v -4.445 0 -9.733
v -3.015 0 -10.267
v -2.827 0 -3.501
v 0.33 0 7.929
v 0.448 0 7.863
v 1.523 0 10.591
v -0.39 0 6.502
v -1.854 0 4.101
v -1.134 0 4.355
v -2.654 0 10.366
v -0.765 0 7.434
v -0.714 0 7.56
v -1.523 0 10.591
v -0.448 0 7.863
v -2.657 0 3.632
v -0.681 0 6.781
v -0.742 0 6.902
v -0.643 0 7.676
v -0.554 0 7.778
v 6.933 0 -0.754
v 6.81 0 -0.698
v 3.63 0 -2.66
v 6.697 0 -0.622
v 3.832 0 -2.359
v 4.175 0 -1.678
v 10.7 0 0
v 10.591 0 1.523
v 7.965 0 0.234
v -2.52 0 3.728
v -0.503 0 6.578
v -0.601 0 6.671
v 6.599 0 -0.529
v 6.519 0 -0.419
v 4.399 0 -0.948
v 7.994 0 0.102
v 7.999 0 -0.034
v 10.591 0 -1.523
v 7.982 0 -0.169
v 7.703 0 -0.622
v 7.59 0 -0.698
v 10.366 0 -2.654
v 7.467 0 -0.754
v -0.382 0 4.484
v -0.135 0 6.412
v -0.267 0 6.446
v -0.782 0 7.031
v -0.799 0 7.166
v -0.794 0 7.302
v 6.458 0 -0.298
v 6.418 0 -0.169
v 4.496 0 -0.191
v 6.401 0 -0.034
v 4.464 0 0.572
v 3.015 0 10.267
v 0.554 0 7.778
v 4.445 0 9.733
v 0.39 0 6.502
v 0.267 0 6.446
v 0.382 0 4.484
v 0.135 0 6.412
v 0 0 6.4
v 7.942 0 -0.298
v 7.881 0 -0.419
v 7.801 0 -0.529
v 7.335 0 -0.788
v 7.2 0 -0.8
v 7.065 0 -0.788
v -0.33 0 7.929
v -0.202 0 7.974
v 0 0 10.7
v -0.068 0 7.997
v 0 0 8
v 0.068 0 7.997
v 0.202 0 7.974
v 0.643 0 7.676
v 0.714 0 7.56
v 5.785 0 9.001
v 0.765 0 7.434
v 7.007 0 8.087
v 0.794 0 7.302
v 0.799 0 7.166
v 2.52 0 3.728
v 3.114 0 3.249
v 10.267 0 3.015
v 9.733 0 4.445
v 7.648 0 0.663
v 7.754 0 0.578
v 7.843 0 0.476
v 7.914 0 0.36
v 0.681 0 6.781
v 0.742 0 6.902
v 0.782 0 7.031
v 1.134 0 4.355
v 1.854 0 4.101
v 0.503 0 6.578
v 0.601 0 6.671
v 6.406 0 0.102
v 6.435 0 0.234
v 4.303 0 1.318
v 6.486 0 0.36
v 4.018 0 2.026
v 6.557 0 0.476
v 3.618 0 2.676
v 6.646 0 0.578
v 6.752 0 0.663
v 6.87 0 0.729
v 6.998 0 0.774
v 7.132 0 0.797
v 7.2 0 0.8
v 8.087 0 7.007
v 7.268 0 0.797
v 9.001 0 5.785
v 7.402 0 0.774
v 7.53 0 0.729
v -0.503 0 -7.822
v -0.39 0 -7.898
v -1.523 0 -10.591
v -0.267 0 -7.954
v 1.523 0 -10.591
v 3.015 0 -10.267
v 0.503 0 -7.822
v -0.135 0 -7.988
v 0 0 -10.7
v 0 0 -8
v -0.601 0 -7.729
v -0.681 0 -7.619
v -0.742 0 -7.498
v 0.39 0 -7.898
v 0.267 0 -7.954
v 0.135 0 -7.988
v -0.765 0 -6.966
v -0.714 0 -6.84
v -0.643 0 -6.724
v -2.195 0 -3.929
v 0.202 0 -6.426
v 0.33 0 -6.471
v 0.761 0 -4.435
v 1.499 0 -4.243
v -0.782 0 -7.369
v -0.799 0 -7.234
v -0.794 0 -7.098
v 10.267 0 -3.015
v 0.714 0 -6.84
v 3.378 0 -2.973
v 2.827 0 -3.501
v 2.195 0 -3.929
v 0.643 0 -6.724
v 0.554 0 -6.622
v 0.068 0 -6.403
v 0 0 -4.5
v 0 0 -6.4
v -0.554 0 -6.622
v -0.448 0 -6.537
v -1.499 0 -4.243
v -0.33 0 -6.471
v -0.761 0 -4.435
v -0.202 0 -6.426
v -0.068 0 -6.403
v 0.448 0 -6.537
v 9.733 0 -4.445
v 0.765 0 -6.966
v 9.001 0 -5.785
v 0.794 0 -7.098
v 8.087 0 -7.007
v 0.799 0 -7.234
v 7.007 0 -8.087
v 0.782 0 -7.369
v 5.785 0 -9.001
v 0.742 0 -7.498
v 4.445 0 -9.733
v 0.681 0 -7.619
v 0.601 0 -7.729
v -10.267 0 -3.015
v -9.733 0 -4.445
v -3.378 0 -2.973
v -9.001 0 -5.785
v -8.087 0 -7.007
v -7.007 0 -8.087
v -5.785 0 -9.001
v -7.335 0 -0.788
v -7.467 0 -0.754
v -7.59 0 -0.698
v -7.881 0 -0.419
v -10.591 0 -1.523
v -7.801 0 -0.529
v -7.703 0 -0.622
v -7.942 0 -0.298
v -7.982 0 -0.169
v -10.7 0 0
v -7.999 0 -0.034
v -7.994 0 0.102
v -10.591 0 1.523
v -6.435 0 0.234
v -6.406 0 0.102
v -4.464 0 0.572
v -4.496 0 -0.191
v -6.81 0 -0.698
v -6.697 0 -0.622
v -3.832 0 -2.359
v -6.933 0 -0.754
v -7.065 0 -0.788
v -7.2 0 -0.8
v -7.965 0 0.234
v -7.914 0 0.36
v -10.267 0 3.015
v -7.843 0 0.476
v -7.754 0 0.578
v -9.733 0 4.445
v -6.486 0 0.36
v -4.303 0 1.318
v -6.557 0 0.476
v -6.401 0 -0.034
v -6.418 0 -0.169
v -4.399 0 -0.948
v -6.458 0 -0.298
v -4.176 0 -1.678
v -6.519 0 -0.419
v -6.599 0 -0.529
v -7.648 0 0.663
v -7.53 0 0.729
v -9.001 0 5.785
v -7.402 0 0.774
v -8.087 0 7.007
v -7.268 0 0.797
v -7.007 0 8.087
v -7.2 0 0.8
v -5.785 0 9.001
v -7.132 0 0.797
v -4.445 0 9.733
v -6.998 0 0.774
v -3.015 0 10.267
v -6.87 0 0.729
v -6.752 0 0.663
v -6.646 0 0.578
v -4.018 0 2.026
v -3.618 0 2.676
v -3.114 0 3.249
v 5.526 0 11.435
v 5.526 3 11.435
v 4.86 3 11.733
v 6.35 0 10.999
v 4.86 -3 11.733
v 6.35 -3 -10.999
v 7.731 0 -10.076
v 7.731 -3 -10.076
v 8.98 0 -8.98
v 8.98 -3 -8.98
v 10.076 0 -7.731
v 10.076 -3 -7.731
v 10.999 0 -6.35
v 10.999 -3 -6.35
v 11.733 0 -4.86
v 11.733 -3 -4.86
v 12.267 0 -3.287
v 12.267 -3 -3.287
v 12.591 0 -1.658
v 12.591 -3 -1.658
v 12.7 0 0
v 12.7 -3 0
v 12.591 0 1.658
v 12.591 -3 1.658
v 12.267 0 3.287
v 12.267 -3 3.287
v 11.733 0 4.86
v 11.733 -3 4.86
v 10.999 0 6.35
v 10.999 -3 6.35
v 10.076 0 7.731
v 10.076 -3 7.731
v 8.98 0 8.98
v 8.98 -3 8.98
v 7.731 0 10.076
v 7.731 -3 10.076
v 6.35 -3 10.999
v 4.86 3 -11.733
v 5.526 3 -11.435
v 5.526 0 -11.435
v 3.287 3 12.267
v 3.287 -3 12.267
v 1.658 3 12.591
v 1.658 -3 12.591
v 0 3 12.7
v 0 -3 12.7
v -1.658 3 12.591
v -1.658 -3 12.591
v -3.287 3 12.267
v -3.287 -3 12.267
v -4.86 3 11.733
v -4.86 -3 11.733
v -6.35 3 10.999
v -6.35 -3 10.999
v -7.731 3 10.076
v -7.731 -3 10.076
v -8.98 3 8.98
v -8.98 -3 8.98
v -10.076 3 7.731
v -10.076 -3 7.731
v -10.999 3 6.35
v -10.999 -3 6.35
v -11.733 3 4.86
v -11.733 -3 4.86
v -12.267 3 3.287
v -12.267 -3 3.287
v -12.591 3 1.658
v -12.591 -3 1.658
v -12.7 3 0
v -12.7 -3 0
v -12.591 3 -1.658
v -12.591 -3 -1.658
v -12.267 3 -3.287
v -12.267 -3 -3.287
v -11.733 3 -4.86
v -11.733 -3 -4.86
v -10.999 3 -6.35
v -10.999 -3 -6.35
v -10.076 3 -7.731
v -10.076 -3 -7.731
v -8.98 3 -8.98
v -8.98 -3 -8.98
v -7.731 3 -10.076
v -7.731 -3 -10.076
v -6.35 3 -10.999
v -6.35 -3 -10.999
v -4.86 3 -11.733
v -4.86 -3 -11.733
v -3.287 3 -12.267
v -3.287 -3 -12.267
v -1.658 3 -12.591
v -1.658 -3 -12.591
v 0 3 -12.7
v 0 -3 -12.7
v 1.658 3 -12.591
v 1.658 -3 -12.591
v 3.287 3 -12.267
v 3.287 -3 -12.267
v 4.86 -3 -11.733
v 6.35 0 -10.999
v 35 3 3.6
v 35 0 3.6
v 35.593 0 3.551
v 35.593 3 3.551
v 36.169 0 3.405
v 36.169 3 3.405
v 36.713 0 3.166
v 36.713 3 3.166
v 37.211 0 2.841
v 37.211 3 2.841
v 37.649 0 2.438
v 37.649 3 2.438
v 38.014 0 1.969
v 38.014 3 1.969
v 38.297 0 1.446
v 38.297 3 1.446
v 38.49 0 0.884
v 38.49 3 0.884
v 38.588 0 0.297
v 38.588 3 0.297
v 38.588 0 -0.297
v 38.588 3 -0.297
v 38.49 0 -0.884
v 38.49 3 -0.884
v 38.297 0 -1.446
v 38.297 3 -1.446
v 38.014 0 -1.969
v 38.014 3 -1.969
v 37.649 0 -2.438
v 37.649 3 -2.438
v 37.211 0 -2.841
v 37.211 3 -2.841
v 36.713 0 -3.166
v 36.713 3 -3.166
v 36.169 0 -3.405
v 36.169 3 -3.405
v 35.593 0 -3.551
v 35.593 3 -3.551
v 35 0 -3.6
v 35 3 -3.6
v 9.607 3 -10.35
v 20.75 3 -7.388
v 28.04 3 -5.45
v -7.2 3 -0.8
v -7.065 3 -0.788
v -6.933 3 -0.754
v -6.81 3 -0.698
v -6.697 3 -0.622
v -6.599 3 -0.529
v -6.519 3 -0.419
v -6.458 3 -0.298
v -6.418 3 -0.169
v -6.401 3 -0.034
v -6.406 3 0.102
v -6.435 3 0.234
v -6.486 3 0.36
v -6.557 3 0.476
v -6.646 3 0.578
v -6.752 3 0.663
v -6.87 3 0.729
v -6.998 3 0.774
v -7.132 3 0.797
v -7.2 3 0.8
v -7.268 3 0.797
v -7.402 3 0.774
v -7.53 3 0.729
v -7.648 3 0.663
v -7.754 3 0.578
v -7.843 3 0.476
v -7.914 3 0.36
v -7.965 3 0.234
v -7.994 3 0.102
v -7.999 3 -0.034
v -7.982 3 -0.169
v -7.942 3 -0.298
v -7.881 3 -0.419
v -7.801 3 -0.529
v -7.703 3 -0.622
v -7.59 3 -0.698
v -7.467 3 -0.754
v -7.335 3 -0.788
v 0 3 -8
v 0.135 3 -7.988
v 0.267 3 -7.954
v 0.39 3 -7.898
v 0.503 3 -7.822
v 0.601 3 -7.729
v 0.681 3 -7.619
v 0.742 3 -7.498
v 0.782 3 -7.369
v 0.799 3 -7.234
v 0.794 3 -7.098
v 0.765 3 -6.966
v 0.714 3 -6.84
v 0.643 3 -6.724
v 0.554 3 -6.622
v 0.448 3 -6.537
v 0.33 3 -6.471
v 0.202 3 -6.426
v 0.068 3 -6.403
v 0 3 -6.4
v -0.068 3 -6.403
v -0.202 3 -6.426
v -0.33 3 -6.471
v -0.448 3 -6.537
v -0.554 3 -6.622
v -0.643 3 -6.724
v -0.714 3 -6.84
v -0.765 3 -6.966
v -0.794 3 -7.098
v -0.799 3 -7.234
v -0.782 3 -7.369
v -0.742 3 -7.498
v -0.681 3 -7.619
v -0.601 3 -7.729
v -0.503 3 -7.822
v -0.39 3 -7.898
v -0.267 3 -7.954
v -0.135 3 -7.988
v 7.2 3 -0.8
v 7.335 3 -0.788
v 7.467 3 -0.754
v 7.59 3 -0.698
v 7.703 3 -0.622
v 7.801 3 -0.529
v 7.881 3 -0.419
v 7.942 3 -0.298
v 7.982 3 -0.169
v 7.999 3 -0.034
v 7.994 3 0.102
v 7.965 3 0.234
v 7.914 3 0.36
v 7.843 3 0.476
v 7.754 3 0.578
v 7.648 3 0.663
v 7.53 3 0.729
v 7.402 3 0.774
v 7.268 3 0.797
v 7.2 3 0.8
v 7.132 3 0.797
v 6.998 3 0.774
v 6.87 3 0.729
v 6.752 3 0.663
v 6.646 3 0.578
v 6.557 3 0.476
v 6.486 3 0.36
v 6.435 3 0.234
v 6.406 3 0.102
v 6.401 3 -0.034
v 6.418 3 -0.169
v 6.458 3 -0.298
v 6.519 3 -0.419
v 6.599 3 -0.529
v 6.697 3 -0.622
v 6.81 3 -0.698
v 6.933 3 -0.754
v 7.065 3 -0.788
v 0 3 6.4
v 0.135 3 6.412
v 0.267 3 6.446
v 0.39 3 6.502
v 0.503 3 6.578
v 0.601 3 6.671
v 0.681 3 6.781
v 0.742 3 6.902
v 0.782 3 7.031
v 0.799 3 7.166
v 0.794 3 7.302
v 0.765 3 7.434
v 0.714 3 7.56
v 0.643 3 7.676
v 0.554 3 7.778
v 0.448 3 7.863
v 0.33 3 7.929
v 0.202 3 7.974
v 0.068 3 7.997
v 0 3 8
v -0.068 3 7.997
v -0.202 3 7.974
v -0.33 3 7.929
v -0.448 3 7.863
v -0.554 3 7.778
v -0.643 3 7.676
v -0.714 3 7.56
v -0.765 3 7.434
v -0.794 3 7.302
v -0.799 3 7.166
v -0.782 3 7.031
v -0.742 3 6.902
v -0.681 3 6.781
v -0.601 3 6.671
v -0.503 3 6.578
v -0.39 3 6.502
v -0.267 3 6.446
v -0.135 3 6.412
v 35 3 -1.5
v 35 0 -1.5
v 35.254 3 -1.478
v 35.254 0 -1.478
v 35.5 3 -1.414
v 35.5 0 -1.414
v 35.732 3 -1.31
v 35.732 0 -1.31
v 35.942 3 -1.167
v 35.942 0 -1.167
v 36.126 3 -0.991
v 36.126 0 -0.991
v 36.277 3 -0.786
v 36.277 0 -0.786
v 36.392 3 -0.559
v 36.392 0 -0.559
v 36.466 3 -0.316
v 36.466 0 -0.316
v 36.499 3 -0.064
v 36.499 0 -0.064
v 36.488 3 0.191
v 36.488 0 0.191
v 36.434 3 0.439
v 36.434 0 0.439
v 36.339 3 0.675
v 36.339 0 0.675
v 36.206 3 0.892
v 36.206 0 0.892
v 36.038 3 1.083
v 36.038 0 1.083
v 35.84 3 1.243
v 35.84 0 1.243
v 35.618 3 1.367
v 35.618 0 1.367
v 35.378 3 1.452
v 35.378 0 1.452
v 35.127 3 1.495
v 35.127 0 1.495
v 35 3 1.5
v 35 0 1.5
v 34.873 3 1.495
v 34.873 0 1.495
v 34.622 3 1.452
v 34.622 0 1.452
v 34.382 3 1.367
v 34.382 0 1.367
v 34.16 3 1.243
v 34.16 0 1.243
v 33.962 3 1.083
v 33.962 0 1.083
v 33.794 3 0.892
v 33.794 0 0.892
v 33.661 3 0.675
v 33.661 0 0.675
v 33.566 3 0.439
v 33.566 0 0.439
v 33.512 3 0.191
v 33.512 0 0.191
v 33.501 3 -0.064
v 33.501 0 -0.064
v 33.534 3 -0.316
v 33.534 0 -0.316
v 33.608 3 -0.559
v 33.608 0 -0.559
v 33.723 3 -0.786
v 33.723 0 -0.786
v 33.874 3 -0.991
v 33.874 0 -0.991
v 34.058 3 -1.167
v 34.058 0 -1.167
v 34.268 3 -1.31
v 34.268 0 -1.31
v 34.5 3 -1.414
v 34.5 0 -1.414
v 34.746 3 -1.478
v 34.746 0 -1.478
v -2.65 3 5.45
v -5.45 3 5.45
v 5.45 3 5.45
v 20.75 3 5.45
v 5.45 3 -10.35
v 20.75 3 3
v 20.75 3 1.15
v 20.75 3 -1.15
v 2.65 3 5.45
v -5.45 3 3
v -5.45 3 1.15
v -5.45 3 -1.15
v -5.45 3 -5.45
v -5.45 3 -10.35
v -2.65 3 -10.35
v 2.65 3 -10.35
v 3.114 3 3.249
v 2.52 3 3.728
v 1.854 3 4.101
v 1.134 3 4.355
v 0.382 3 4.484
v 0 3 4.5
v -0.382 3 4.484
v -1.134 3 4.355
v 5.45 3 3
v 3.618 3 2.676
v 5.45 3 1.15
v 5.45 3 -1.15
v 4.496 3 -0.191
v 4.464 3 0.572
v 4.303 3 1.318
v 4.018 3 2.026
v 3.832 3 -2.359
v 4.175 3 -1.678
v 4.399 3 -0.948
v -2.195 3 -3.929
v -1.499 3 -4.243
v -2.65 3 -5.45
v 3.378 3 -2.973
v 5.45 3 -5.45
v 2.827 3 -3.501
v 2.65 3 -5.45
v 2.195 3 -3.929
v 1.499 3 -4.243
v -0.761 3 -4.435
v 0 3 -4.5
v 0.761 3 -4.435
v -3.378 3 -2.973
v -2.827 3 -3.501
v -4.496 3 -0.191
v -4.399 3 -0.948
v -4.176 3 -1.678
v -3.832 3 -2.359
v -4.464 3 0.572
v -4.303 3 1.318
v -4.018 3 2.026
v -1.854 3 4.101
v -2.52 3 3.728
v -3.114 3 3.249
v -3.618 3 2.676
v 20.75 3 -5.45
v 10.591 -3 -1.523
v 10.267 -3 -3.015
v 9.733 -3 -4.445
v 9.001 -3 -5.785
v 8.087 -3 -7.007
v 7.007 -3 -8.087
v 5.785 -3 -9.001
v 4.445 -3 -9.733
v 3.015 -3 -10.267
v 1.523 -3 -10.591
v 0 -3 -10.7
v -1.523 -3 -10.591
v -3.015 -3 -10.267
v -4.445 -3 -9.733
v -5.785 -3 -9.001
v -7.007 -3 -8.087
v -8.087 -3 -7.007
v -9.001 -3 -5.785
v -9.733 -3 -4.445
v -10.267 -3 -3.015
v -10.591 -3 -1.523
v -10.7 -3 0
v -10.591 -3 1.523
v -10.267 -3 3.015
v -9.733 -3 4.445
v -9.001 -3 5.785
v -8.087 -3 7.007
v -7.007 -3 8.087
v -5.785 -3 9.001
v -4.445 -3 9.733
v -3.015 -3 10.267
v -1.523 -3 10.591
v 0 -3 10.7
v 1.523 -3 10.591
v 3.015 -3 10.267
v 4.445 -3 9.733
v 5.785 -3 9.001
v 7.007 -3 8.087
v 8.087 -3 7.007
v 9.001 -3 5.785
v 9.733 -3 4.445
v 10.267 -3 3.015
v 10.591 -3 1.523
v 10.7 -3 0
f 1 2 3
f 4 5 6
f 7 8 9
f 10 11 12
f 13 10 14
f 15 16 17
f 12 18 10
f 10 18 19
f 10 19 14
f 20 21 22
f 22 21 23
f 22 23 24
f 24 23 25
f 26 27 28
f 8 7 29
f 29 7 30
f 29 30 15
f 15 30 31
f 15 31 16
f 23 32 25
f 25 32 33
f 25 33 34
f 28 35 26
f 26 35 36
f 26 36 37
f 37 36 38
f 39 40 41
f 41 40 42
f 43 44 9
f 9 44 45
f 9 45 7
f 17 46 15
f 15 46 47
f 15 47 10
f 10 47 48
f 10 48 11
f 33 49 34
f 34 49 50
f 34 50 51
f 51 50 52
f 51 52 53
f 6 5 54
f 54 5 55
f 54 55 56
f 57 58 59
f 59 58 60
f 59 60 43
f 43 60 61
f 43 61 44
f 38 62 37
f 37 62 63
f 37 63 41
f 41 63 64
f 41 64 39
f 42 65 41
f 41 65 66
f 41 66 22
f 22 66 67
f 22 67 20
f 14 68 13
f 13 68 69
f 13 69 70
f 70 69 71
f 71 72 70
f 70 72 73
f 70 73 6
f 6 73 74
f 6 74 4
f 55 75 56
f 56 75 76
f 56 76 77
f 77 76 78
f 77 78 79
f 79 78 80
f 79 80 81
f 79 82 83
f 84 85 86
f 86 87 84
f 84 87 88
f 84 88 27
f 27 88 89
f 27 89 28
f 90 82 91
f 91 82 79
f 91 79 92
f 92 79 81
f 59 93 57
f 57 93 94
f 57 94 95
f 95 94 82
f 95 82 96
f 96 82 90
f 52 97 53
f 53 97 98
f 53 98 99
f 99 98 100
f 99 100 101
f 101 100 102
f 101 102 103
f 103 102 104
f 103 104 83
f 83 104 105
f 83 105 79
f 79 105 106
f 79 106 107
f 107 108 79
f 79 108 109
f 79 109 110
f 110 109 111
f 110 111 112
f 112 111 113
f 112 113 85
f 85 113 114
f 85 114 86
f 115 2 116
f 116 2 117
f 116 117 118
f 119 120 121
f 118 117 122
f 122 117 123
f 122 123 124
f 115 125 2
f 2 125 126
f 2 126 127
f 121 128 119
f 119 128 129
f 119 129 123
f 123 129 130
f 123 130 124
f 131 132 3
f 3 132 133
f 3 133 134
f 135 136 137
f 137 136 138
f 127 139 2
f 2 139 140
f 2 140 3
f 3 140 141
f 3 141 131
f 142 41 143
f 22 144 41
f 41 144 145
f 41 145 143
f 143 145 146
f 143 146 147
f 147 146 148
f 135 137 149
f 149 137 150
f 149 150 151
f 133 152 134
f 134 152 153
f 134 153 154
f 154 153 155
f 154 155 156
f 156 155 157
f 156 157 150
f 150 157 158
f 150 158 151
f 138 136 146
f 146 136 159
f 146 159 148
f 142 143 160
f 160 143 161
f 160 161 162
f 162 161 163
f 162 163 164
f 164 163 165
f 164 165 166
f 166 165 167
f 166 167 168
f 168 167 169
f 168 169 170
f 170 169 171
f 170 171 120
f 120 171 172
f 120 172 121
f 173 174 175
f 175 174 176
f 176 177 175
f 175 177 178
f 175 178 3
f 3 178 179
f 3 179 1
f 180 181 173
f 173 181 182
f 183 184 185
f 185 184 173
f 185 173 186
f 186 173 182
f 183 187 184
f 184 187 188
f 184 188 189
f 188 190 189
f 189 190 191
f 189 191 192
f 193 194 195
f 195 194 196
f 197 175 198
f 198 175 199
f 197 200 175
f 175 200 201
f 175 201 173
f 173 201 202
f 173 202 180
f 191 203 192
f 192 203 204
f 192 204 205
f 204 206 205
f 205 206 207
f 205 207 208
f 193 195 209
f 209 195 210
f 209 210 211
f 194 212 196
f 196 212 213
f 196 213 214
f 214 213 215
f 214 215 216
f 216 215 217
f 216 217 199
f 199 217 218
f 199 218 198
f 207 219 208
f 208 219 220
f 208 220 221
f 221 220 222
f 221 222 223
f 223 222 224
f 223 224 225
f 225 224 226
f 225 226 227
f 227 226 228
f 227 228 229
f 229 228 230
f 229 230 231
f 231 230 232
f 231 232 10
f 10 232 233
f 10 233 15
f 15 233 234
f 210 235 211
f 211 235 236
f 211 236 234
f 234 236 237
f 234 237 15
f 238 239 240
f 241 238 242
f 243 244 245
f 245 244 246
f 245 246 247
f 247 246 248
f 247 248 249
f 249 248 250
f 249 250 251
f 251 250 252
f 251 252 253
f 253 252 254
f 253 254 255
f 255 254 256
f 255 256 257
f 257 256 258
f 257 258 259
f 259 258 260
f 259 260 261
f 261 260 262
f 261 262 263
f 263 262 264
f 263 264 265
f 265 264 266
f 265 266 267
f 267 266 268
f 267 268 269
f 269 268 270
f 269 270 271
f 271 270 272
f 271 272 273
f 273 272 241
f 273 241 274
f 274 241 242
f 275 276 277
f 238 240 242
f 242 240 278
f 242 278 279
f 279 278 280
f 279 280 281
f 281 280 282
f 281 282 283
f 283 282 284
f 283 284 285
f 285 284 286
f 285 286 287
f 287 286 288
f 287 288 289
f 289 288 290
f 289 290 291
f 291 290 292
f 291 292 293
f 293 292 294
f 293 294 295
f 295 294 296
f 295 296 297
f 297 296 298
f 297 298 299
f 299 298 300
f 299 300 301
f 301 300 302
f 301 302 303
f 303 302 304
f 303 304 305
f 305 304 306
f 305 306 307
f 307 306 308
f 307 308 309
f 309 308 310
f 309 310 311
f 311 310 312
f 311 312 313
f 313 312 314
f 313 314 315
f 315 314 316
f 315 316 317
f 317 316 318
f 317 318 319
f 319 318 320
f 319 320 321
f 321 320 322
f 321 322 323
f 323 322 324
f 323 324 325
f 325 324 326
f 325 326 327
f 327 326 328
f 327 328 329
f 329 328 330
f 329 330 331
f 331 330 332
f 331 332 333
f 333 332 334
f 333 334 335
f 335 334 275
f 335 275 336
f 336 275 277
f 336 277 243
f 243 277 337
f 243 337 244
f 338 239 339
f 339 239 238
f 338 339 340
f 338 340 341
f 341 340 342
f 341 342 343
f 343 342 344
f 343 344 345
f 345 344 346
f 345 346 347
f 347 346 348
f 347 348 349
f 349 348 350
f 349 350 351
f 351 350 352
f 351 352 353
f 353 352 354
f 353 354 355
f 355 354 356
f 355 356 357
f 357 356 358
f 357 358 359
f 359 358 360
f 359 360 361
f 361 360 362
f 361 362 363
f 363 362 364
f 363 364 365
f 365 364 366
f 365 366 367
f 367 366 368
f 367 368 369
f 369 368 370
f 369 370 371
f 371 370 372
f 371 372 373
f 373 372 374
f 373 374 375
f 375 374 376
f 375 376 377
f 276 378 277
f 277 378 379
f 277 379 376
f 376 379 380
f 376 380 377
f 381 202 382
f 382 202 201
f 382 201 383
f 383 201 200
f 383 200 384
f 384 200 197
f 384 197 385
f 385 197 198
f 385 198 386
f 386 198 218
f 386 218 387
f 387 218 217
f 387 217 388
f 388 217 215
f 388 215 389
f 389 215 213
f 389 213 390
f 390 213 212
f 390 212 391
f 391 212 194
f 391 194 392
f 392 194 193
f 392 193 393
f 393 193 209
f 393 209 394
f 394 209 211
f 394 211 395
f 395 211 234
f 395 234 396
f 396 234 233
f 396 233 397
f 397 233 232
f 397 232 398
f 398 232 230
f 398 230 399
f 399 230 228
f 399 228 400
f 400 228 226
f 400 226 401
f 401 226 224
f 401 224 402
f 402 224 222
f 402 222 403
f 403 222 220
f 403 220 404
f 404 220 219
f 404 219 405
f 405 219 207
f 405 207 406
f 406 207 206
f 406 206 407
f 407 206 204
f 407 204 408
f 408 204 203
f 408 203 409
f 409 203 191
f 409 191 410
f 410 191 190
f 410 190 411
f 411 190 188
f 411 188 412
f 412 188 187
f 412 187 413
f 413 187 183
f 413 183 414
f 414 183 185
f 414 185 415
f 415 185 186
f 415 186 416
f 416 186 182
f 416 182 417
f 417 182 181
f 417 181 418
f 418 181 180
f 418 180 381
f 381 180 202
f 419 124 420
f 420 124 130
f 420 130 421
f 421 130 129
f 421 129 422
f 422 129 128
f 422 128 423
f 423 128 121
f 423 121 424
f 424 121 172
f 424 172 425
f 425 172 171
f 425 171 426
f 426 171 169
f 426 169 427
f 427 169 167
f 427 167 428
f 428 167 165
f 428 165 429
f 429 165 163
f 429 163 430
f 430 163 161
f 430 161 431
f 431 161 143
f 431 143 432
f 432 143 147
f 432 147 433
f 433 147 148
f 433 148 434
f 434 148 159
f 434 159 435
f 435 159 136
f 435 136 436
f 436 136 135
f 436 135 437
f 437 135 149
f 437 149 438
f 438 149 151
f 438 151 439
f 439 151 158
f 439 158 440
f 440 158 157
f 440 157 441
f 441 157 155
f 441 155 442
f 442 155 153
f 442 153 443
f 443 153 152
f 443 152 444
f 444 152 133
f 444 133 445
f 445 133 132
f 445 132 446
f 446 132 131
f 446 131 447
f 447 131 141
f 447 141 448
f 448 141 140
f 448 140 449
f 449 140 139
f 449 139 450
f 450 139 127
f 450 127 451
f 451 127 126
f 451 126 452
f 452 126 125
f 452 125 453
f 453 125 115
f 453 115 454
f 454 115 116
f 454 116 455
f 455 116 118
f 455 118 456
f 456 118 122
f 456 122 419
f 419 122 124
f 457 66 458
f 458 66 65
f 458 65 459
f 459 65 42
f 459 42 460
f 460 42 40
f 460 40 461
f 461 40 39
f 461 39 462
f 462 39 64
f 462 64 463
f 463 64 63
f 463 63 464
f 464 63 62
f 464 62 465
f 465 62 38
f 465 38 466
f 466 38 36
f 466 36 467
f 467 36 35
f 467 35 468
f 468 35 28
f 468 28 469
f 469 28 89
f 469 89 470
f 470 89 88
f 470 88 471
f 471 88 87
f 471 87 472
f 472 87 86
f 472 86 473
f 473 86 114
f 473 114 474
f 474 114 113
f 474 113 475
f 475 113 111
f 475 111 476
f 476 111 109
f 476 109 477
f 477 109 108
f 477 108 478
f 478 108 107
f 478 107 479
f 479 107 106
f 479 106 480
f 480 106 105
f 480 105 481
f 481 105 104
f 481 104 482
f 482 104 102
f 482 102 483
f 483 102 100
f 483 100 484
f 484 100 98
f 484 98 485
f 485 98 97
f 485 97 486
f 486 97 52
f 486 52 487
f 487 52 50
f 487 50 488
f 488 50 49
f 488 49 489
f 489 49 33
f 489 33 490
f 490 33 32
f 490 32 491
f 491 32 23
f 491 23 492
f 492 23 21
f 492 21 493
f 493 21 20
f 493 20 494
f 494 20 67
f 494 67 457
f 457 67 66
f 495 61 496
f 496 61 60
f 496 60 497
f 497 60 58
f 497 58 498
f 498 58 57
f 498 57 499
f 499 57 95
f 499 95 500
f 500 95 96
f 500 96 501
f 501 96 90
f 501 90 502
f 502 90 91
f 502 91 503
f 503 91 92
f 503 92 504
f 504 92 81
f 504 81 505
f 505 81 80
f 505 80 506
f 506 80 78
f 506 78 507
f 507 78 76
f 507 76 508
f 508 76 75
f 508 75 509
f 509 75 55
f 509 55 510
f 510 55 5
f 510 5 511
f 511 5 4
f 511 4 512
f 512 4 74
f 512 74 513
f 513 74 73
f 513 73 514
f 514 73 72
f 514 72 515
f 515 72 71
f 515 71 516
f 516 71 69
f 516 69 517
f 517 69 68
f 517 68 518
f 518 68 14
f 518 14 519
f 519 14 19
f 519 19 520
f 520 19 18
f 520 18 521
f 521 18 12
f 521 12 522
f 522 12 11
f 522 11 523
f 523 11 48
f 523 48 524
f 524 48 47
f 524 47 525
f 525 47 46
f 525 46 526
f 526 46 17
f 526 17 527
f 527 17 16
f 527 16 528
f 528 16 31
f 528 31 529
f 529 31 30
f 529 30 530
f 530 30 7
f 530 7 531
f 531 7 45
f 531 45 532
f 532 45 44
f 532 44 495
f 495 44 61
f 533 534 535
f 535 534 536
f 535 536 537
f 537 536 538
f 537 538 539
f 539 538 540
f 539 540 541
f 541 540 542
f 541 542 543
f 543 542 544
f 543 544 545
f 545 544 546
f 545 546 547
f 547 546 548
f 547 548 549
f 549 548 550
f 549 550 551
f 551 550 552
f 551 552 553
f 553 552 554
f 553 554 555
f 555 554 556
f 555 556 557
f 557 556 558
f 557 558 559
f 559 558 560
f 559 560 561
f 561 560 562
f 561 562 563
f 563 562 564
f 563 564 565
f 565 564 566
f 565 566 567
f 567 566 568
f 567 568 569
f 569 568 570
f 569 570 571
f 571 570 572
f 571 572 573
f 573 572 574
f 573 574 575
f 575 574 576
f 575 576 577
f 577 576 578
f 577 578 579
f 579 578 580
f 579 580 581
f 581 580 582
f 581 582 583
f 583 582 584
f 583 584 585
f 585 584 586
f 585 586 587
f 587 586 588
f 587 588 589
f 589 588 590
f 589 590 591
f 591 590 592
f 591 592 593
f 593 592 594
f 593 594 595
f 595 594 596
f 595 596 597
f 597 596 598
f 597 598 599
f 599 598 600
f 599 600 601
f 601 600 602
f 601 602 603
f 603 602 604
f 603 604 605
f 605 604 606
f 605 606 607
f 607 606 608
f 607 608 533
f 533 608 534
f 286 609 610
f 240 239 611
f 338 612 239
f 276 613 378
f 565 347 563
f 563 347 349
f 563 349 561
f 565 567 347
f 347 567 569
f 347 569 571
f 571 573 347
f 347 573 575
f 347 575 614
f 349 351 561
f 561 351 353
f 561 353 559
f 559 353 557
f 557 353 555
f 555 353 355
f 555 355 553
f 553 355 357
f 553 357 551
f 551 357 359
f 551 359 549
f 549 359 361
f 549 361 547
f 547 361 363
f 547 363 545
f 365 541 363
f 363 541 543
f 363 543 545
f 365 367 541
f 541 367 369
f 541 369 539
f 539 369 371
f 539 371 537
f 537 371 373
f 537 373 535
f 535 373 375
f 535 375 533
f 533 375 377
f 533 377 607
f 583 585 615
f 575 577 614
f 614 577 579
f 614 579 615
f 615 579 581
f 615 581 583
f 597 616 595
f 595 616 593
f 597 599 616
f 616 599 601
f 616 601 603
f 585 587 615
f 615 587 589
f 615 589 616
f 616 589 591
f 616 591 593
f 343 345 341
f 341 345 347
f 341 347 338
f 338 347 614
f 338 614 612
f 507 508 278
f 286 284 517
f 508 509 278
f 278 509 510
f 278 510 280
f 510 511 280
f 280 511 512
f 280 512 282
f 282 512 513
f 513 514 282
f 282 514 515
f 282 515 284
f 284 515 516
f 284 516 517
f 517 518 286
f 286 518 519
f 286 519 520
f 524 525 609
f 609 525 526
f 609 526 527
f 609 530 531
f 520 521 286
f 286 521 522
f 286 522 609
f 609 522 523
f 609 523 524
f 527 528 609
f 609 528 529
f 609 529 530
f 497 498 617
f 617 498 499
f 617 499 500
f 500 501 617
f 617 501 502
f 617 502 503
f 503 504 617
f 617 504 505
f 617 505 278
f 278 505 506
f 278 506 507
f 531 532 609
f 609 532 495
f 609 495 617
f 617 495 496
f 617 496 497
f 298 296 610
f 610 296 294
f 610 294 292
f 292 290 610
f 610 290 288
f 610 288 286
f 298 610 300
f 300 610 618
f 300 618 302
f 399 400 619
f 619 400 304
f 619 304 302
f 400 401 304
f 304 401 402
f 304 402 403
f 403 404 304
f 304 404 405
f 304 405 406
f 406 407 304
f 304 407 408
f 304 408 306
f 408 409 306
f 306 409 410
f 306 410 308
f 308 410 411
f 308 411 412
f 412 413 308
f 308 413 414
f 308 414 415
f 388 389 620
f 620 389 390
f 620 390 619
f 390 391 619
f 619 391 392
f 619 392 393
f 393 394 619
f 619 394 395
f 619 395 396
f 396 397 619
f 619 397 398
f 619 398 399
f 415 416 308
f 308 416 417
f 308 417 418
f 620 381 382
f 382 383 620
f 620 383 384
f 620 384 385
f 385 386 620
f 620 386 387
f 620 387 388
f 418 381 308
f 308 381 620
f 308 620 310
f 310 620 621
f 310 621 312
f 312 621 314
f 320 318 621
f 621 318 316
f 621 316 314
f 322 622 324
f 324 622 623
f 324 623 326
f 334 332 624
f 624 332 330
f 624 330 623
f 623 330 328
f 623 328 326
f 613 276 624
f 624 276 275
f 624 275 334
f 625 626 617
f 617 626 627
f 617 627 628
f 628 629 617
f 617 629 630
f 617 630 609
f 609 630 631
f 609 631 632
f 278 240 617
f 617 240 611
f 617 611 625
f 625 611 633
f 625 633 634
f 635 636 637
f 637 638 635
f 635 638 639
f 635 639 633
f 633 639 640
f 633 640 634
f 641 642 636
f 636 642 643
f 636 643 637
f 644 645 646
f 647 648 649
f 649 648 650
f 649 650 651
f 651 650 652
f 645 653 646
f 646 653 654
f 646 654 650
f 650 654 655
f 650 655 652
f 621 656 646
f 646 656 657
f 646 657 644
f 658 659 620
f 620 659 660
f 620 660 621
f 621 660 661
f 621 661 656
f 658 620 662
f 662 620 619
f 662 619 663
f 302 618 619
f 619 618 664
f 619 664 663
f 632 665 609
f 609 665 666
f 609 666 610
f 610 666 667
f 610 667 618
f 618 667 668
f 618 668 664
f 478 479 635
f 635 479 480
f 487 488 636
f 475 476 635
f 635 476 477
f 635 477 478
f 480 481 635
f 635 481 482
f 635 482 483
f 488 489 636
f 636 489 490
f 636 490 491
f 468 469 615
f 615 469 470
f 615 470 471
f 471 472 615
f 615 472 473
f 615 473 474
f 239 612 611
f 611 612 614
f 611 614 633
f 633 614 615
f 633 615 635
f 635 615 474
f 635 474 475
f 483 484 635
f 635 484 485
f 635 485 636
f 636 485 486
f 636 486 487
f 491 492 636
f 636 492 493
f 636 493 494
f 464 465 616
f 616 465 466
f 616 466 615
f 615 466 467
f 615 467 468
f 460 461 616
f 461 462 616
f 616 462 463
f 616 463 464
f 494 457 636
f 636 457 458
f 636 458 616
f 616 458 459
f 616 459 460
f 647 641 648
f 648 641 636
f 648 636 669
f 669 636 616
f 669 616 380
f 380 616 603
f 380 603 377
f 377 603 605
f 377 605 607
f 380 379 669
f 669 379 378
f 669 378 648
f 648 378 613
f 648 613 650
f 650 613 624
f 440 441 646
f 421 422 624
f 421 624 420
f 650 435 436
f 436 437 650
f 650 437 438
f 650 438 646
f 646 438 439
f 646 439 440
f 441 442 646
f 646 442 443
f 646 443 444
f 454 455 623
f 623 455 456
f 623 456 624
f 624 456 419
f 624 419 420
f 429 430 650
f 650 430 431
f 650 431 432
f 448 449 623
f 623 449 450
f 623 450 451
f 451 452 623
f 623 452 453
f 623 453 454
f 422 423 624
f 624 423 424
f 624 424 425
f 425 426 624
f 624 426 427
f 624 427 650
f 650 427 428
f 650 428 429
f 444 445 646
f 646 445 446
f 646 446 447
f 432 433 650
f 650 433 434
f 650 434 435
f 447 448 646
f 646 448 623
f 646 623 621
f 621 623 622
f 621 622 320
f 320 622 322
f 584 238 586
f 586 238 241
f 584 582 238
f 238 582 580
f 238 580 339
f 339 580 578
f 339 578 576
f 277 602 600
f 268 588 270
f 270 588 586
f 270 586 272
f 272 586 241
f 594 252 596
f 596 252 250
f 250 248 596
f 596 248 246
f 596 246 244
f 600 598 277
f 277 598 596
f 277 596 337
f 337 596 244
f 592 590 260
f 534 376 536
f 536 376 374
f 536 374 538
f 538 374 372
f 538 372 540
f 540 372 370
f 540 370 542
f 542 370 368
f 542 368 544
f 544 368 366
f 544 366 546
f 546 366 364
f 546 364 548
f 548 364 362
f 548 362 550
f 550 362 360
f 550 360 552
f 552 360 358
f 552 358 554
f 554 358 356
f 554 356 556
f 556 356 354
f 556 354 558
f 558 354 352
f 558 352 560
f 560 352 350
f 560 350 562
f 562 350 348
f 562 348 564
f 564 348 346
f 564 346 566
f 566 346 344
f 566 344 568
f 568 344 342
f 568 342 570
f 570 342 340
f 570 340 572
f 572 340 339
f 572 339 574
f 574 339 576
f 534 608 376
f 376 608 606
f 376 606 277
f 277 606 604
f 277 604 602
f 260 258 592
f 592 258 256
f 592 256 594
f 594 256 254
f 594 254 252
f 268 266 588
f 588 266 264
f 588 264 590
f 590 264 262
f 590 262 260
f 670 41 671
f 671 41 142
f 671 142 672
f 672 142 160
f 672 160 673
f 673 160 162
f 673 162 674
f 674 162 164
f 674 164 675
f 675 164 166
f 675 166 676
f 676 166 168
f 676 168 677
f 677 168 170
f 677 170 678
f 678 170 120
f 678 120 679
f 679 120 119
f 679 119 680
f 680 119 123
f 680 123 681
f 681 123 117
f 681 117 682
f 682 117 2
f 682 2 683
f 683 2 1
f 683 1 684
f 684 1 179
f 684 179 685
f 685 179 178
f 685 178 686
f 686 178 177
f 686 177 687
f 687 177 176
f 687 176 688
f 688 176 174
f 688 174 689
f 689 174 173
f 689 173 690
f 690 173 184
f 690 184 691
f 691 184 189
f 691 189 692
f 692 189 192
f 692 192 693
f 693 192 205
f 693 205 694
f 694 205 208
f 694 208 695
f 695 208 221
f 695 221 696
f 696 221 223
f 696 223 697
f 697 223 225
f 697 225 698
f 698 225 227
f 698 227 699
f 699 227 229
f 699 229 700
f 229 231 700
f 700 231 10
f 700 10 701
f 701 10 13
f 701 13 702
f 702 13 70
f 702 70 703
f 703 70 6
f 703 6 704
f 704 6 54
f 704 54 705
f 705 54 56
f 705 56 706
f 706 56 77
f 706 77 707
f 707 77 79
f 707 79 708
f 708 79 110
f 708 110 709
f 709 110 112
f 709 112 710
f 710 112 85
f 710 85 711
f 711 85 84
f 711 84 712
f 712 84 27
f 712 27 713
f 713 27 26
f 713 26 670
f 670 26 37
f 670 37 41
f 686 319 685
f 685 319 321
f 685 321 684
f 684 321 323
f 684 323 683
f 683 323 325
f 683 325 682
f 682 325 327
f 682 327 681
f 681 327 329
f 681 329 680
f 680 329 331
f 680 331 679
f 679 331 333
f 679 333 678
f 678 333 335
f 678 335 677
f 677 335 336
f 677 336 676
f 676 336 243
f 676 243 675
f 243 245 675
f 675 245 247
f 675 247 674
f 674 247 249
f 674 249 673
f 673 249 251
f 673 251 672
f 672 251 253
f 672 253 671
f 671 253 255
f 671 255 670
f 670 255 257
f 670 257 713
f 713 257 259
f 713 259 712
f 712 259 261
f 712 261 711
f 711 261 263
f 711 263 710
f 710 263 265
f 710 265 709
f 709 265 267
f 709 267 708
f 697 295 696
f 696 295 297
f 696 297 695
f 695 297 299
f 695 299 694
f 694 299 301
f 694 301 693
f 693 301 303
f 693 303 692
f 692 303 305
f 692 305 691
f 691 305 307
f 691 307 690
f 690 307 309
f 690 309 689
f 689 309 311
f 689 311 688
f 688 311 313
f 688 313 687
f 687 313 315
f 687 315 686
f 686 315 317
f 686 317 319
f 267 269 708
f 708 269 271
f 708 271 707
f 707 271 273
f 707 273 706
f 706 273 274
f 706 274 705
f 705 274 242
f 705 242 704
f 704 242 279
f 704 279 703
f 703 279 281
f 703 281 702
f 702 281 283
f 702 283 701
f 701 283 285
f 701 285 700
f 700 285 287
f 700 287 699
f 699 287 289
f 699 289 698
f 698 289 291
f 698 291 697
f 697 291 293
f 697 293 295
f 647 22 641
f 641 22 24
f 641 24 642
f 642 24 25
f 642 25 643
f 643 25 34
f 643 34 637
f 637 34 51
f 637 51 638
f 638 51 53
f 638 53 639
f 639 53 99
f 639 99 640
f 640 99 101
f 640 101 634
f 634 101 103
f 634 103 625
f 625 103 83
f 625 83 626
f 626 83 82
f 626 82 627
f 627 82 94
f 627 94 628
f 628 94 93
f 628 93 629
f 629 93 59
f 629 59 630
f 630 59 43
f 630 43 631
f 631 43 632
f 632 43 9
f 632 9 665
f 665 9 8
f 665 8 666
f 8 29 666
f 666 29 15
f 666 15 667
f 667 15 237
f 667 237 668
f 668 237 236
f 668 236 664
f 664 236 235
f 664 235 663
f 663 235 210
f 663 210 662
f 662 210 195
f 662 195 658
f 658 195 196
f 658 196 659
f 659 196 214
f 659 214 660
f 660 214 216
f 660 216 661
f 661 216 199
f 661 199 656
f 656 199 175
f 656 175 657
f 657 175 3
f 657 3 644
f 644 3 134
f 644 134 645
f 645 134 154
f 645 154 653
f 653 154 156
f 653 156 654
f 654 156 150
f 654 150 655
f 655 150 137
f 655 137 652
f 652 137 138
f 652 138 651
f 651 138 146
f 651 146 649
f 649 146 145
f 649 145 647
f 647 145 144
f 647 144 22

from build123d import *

# Parameters (mm, degrees)
SKETCH1_R           = 1.5
SKETCH1_R_2         = 0.8
BOSS_EXTRUDE1_DEPTH = 3
BOSS_EXTRUDE2_START = -3
SKETCH1_3_R         = 10.7
BOSS_EXTRUDE2_DEPTH = 3
SKETCH2_R           = 4.5
CUT_EXTRUDE1_DEPTH  = 10


with BuildPart() as part:
    # Sketch1 → Boss-Extrude1 (new body)
    with BuildSketch(Plane(origin=(0, 0, 0), x_dir=(1, 0, 0), z_dir=(0, 1, 0))):
        with BuildLine():
            Line((5.526066251, -11.434709956), (35, -3.6))
            ThreePointArc((35, -3.6), (38.6, 0), (35, 3.6))
            Line((35, 3.6), (5.526066251, 11.434709956))
            ThreePointArc((5.526066251, 11.434709956), (-12.7, 0), (5.526066251, -11.434709956))
        make_face()
        with Locations((35, 0)):
            Circle(SKETCH1_R, mode=Mode.SUBTRACT)
        with Locations((0, 7.2)):
            Circle(SKETCH1_R_2, mode=Mode.SUBTRACT)
        with Locations((0, -7.2)):
            Circle(SKETCH1_R_2, mode=Mode.SUBTRACT)
        with Locations((7.2, 0)):
            Circle(SKETCH1_R_2, mode=Mode.SUBTRACT)
        with Locations((-7.2, 0)):
            Circle(SKETCH1_R_2, mode=Mode.SUBTRACT)
        Circle(SKETCH1_R, mode=Mode.SUBTRACT)
    extrude(amount=BOSS_EXTRUDE1_DEPTH)

    # Sketch1<3> → Boss-Extrude2 (add)
    with BuildSketch(Plane(origin=(0, 0, 0), x_dir=(1, 0, 0), z_dir=(0, 1, 0)).offset(BOSS_EXTRUDE2_START)):
        with BuildLine():
            ThreePointArc((12.7, 0), (10.758044464, 6.749405848), (5.526066251, 11.434709956))
            ThreePointArc((5.526066251, 11.434709956), (-12.7, 0), (5.526066251, -11.434709956))
            ThreePointArc((5.526066251, -11.434709956), (10.758044464, -6.749405848), (12.7, 0))
        make_face()
        Circle(SKETCH1_3_R, mode=Mode.SUBTRACT)
    extrude(amount=BOSS_EXTRUDE2_DEPTH)

    # Sketch2 → Cut-Extrude1 (cut)
    with BuildSketch(Plane.XZ):
        Circle(SKETCH2_R)
    extrude(amount=-CUT_EXTRUDE1_DEPTH, mode=Mode.SUBTRACT)


solid = part.part
